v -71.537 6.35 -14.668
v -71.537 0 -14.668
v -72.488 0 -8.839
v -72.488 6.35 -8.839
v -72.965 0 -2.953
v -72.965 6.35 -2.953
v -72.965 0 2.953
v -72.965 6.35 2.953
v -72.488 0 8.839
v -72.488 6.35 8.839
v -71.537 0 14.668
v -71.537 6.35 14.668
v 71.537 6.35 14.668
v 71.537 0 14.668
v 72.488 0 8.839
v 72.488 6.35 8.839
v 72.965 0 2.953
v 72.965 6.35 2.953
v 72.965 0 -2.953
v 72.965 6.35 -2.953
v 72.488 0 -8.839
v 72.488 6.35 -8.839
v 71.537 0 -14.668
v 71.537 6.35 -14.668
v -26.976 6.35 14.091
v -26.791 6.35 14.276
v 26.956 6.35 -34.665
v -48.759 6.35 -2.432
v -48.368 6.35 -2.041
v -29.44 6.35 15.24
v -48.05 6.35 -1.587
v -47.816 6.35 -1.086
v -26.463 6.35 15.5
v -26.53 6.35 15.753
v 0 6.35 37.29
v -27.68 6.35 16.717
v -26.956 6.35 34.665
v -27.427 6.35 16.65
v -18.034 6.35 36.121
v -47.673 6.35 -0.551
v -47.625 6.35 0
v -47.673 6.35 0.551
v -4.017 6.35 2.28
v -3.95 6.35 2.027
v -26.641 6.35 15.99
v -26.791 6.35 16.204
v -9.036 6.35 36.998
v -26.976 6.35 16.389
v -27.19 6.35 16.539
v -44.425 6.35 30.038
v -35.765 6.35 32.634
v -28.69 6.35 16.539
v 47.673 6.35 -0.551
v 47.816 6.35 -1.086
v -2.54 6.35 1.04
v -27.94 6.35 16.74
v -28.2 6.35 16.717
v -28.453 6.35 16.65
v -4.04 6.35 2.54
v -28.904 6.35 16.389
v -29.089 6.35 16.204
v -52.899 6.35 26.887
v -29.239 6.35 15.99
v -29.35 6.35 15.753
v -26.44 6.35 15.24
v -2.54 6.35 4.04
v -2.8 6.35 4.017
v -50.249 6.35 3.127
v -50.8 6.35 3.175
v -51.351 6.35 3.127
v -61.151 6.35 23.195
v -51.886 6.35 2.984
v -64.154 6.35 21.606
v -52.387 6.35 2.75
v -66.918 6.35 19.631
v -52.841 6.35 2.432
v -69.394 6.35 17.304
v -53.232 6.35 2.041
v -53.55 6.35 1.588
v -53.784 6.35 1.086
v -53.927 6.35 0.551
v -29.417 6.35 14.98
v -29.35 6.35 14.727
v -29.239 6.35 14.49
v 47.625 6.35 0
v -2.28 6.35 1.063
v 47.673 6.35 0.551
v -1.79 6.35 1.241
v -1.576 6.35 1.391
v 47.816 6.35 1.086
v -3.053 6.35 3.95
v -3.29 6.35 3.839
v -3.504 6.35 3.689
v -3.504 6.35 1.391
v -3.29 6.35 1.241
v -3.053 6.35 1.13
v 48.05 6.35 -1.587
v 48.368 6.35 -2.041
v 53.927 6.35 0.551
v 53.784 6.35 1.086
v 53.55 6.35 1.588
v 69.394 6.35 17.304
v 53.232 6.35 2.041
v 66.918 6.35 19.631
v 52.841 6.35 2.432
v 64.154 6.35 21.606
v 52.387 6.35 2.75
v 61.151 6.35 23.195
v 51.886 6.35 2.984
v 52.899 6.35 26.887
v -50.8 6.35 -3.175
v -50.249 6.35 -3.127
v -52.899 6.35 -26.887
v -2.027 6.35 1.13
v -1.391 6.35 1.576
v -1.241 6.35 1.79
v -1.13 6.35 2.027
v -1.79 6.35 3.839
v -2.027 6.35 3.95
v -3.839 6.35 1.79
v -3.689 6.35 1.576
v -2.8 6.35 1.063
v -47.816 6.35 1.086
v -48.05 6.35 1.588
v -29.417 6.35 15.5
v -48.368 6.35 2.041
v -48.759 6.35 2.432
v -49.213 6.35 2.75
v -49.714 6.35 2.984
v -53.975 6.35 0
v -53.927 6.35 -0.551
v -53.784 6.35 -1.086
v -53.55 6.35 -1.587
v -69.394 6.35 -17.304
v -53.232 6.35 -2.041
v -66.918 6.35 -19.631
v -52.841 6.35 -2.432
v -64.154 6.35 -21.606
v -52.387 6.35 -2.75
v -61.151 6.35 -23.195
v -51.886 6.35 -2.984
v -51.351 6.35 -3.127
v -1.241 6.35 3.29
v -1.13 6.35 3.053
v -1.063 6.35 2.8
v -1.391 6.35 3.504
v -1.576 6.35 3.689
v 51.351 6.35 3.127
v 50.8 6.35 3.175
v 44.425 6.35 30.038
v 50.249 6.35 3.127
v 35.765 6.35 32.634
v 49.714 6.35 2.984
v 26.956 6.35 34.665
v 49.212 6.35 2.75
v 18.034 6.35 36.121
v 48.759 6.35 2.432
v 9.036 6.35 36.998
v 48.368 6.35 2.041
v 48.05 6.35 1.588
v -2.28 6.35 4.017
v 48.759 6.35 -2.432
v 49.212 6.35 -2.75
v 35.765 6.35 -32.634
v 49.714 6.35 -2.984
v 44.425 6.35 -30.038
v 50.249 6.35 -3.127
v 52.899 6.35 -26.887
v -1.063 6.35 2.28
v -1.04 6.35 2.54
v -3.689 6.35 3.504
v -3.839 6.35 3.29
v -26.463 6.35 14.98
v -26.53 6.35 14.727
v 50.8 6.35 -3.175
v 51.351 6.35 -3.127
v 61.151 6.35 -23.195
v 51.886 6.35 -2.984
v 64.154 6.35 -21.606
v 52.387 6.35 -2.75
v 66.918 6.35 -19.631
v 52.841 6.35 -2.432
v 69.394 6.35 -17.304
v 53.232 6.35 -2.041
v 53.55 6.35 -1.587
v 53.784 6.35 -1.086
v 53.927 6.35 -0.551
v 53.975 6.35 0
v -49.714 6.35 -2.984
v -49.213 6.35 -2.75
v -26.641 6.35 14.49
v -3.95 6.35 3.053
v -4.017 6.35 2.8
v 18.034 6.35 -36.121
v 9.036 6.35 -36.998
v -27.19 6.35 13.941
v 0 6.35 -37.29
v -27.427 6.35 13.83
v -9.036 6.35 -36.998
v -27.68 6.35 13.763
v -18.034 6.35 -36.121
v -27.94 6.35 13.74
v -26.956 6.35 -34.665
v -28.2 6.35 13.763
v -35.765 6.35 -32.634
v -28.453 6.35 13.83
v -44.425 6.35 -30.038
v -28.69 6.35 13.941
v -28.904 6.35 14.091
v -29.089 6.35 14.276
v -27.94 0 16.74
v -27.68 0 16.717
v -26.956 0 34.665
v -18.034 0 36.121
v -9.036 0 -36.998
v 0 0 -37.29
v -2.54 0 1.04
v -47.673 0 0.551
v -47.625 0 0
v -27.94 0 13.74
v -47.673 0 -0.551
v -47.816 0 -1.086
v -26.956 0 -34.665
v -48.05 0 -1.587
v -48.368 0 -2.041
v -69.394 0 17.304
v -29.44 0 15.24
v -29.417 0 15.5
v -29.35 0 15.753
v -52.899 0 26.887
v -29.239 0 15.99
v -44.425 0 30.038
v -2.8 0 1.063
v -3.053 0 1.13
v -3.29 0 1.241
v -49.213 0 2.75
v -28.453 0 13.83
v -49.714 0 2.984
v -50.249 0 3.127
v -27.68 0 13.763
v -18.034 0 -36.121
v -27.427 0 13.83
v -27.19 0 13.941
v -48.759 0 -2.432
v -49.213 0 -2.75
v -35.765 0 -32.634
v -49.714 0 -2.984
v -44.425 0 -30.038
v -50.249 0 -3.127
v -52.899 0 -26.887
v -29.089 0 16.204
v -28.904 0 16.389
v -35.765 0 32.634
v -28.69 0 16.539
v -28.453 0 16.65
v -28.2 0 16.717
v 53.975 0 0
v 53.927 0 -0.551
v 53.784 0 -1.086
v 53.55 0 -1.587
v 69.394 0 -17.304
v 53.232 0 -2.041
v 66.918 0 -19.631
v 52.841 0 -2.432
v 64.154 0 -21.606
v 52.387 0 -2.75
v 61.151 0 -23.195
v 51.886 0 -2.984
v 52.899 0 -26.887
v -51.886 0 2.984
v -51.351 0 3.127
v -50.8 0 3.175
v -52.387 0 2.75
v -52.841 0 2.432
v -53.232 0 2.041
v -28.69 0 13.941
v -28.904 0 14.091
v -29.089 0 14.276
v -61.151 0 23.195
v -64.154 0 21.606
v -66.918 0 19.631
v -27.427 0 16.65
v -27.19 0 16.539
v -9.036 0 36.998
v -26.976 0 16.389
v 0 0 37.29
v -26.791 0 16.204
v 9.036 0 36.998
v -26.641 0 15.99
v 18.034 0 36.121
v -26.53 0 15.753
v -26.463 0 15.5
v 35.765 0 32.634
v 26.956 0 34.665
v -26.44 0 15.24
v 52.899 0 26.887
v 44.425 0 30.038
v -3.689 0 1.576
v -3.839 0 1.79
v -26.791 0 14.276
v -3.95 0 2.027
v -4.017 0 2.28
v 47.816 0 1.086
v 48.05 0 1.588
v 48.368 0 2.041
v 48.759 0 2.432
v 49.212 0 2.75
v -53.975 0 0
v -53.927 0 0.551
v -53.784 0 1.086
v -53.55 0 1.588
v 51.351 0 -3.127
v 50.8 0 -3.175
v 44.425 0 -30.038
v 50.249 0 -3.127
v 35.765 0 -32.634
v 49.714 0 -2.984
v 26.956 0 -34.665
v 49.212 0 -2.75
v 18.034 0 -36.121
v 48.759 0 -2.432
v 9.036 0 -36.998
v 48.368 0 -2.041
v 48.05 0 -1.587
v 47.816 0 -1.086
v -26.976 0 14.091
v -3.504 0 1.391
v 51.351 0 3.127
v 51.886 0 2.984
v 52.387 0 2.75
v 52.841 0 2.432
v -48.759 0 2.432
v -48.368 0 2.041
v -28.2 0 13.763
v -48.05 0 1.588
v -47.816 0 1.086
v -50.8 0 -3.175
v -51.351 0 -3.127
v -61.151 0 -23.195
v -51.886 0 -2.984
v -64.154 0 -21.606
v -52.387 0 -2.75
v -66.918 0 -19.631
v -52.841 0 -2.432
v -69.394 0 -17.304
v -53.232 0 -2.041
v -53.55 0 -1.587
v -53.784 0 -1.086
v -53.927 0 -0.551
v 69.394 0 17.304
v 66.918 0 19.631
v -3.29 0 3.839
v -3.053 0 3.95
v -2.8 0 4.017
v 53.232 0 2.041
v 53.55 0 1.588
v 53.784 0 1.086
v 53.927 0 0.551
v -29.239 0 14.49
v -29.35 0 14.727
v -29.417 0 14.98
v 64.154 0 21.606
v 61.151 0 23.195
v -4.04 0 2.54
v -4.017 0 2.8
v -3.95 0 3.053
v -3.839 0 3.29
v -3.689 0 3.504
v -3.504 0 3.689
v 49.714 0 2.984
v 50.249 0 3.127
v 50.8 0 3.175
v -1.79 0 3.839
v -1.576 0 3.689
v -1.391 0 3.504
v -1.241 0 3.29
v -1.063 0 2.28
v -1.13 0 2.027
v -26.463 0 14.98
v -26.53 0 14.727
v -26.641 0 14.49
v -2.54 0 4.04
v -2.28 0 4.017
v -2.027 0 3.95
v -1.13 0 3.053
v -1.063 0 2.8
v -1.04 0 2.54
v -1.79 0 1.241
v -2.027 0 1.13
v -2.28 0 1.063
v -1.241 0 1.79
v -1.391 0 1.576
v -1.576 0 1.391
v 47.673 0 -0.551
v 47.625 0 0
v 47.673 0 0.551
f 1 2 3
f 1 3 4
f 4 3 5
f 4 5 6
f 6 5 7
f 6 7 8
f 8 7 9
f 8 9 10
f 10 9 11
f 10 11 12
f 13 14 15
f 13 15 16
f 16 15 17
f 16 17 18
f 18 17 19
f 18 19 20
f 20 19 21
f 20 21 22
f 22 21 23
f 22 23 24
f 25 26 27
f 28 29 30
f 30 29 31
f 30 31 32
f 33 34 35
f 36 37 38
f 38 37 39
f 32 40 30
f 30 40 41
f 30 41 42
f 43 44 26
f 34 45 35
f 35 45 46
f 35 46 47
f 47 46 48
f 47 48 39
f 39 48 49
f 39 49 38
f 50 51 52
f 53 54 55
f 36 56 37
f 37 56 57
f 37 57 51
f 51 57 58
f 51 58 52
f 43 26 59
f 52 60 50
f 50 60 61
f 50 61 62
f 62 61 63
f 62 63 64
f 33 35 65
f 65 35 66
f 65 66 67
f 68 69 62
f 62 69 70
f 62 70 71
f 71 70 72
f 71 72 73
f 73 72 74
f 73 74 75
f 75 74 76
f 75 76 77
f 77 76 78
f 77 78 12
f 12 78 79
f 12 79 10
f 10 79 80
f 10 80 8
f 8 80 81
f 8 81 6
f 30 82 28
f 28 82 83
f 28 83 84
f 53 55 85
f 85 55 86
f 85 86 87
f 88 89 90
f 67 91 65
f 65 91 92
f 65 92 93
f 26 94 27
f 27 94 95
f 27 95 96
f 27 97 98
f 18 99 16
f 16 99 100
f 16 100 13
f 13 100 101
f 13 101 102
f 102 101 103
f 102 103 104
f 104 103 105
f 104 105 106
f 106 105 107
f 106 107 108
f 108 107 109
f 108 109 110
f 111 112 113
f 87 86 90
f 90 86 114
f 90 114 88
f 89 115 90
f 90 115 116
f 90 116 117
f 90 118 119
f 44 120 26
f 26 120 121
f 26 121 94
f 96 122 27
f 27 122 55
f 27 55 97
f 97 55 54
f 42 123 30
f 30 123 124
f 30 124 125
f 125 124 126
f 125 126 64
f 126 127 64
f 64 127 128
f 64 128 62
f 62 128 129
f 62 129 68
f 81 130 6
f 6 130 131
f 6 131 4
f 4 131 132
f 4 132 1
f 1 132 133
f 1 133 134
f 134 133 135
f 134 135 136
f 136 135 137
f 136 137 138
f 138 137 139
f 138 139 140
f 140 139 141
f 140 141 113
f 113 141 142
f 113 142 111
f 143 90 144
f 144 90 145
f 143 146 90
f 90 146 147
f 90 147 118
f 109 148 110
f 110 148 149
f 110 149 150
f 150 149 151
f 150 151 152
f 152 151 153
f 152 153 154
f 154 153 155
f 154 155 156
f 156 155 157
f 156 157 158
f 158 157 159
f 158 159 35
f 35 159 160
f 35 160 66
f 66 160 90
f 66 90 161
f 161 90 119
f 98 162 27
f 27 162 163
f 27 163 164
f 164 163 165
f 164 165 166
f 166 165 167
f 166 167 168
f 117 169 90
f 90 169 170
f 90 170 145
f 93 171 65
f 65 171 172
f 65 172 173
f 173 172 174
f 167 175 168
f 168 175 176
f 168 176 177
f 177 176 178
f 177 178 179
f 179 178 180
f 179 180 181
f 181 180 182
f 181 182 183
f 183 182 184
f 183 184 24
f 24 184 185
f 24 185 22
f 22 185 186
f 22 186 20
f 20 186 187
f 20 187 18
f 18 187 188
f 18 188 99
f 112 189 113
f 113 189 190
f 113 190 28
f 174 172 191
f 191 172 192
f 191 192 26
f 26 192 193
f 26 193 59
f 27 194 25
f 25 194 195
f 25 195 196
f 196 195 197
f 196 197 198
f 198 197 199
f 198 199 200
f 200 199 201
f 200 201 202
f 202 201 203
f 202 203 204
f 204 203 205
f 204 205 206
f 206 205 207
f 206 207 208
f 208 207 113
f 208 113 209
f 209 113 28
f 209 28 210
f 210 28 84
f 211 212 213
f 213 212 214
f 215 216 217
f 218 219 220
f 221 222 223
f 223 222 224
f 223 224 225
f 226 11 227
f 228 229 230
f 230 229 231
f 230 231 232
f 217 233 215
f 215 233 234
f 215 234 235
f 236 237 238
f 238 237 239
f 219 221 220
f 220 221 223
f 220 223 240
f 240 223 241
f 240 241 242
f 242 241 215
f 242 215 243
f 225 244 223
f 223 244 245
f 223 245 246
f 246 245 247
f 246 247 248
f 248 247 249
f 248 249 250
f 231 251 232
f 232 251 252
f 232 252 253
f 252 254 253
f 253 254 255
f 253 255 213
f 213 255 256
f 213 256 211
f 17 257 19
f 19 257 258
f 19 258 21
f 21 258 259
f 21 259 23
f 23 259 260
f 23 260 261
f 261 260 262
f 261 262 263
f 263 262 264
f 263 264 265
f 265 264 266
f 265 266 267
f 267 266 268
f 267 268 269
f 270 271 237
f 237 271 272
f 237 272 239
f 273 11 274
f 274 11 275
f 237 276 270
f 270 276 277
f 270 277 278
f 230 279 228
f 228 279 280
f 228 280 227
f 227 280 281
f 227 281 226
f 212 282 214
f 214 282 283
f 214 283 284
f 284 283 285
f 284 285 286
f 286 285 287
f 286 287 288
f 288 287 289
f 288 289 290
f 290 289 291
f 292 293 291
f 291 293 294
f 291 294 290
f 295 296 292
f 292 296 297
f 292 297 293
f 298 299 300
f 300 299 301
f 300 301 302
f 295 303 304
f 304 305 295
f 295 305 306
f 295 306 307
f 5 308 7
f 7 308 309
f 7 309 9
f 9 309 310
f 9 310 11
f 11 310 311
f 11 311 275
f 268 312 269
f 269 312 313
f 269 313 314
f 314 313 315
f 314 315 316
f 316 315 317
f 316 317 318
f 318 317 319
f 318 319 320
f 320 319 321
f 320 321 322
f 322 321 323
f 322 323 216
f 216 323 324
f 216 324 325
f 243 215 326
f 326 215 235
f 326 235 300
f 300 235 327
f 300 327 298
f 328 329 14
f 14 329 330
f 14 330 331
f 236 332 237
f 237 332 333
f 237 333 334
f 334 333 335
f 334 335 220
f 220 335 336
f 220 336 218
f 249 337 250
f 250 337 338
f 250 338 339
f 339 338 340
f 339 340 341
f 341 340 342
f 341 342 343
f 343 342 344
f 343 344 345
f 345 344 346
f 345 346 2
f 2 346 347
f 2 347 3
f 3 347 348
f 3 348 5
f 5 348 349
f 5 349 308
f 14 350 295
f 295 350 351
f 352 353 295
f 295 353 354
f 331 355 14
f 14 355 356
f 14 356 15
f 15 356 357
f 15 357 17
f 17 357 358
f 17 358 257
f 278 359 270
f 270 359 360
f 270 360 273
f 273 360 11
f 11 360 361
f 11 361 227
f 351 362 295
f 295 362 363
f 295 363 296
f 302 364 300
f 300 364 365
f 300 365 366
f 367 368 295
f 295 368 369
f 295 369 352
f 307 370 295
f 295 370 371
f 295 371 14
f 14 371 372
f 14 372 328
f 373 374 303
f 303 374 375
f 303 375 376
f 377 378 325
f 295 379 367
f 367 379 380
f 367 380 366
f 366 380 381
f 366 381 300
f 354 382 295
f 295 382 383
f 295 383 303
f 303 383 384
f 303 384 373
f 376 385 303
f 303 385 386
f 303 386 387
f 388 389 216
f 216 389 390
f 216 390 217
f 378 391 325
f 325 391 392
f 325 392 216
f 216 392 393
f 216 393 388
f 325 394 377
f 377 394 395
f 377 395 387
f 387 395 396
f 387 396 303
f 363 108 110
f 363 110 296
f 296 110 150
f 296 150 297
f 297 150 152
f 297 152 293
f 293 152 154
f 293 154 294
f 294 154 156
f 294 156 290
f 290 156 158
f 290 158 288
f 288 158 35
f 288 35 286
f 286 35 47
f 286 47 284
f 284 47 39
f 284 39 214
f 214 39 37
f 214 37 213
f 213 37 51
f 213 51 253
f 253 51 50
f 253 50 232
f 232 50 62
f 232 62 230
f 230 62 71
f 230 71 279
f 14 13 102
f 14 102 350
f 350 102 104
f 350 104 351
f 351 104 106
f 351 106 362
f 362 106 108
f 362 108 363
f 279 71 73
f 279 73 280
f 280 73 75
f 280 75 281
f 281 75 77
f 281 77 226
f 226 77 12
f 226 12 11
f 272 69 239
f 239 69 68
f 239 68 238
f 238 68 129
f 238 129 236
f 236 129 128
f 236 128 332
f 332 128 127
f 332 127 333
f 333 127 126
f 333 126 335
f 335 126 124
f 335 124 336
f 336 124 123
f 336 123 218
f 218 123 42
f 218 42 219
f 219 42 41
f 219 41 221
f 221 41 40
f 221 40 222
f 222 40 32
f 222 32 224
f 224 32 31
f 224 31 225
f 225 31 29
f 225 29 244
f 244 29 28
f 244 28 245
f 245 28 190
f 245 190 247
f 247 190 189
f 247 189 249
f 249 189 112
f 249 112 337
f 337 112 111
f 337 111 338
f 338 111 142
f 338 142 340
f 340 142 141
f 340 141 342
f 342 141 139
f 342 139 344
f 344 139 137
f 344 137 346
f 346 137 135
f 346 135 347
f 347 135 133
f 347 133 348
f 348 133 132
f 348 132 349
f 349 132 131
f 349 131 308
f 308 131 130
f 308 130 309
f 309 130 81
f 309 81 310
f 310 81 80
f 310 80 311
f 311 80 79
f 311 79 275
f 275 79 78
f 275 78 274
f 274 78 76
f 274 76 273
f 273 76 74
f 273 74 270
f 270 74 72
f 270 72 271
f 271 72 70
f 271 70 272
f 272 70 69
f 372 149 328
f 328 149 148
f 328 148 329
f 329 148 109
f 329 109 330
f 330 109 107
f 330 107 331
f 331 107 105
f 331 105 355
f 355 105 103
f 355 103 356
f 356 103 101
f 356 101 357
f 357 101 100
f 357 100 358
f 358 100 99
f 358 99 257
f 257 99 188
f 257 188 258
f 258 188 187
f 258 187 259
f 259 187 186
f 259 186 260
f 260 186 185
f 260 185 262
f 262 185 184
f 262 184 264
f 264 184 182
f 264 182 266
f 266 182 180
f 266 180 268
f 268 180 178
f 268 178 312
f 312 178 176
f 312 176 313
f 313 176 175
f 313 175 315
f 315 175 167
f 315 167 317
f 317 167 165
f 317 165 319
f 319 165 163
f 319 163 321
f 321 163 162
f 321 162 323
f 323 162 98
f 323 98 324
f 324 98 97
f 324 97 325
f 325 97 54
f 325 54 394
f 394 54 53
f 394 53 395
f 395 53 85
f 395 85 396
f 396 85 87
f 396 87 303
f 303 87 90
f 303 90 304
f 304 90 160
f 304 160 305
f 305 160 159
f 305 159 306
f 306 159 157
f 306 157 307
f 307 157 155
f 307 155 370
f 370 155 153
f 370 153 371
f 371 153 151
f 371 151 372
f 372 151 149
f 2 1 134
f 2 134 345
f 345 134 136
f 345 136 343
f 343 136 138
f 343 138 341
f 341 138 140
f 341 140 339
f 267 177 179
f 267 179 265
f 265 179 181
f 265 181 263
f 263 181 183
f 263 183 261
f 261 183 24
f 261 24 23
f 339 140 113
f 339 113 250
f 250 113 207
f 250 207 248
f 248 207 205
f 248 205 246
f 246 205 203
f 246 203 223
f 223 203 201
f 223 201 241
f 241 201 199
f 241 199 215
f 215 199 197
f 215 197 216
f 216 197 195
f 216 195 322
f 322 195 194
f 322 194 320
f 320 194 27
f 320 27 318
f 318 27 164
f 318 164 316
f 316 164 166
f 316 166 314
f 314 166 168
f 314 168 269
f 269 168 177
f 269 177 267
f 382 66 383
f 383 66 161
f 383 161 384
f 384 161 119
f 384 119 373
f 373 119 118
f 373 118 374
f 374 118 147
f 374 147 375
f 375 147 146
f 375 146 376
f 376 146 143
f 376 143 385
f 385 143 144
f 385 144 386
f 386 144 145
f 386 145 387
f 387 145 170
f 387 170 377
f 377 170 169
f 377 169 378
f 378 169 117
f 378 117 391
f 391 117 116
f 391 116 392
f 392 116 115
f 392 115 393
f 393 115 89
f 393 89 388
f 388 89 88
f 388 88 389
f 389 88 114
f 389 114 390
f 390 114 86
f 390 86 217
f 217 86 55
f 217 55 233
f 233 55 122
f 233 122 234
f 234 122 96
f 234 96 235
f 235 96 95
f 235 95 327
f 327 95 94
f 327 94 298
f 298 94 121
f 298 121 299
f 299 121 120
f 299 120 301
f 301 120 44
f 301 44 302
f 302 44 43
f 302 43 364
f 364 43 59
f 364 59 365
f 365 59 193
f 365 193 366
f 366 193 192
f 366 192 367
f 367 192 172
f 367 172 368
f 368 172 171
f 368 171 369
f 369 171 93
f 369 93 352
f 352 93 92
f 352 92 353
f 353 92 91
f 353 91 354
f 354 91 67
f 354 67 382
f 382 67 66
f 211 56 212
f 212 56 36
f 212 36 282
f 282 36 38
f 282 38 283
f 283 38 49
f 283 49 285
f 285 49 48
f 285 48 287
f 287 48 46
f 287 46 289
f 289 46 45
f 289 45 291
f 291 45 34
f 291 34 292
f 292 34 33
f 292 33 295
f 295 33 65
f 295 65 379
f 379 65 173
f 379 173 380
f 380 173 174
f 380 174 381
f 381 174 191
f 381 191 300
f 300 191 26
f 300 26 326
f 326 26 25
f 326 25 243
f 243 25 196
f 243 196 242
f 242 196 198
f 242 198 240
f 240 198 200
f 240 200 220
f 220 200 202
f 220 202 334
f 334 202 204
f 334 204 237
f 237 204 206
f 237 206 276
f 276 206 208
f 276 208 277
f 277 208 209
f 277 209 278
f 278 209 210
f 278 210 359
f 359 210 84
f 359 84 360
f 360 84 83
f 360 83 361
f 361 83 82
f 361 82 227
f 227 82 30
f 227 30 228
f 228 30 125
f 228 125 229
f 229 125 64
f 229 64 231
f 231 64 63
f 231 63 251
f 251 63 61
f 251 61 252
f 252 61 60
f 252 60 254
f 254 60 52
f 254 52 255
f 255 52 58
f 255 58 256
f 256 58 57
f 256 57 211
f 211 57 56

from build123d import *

# Parameters (mm, degrees)
SKETCH1_R             = 73.025
BOSS_EXTRUDE1_DEPTH   = 6.35
CUT_EXTRUDE2_START    = -6.35
SKETCH2_R             = 3.175
CUT_EXTRUDE2_DEPTH    = 6.35
F_3_0MM_DOWEL_HOLE1_D = 3


with BuildPart() as part:
    # Sketch1 → Boss-Extrude1 (new body)
    with BuildSketch(Plane(origin=(0, 0, 0), x_dir=(1, 0, 0), z_dir=(0, 1, 0))):
        with Locations(Location((0, 0, 0), (0, 0, 270))):
            Circle(SKETCH1_R)
    extrude(amount=BOSS_EXTRUDE1_DEPTH)

    # Sketch2 → Cut-Extrude2 (cut)
    with BuildSketch(Plane(origin=(0, 6.35, 0), x_dir=(1, 0, 0), z_dir=(0, 1, 0)).offset(CUT_EXTRUDE2_START)):
        with BuildLine():
            ThreePointArc((61.150770614, -23.195291499), (0, -37.290063688), (-61.150770614, -23.195291499))
            ThreePointArc((-61.150770614, -23.195291499), (-66.917906968, -19.630921399), (-71.53671875, -14.667941079))
            ThreePointArc((-71.53671875, -14.667941079), (0, -73.025), (71.53671875, -14.667941079))
            ThreePointArc((71.53671875, -14.667941079), (66.917906968, -19.630921399), (61.150770614, -23.195291499))
        make_face()
        with BuildLine():
            ThreePointArc((-61.150770614, 23.195291499), (0, 37.290063688), (61.150770614, 23.195291499))
            ThreePointArc((61.150770614, 23.195291499), (66.917906968, 19.630921399), (71.53671875, 14.667941079))
            ThreePointArc((71.53671875, 14.667941079), (0, 73.025), (-71.53671875, 14.667941079))
            ThreePointArc((-71.53671875, 14.667941079), (-66.917906968, 19.630921399), (-61.150770614, 23.195291499))
        make_face()
        with Locations(Location((-50.8, 0, 0), (0, 0, 270))):
            Circle(SKETCH2_R)
        with Locations(Location((50.8, 0, 0), (0, 0, 270))):
            Circle(SKETCH2_R)
    extrude(amount=CUT_EXTRUDE2_DEPTH, mode=Mode.SUBTRACT)

    # Ø3.0mm Dowel Hole1 (through all)
    with Locations(Plane(origin=(0, 6.35, 0), x_dir=(1, 0, 0), z_dir=(0, 1, 0))):
        with Locations((-27.94, -15.24), (-2.54, -2.54)):
            Hole(F_3_0MM_DOWEL_HOLE1_D / 2)


solid = part.part
